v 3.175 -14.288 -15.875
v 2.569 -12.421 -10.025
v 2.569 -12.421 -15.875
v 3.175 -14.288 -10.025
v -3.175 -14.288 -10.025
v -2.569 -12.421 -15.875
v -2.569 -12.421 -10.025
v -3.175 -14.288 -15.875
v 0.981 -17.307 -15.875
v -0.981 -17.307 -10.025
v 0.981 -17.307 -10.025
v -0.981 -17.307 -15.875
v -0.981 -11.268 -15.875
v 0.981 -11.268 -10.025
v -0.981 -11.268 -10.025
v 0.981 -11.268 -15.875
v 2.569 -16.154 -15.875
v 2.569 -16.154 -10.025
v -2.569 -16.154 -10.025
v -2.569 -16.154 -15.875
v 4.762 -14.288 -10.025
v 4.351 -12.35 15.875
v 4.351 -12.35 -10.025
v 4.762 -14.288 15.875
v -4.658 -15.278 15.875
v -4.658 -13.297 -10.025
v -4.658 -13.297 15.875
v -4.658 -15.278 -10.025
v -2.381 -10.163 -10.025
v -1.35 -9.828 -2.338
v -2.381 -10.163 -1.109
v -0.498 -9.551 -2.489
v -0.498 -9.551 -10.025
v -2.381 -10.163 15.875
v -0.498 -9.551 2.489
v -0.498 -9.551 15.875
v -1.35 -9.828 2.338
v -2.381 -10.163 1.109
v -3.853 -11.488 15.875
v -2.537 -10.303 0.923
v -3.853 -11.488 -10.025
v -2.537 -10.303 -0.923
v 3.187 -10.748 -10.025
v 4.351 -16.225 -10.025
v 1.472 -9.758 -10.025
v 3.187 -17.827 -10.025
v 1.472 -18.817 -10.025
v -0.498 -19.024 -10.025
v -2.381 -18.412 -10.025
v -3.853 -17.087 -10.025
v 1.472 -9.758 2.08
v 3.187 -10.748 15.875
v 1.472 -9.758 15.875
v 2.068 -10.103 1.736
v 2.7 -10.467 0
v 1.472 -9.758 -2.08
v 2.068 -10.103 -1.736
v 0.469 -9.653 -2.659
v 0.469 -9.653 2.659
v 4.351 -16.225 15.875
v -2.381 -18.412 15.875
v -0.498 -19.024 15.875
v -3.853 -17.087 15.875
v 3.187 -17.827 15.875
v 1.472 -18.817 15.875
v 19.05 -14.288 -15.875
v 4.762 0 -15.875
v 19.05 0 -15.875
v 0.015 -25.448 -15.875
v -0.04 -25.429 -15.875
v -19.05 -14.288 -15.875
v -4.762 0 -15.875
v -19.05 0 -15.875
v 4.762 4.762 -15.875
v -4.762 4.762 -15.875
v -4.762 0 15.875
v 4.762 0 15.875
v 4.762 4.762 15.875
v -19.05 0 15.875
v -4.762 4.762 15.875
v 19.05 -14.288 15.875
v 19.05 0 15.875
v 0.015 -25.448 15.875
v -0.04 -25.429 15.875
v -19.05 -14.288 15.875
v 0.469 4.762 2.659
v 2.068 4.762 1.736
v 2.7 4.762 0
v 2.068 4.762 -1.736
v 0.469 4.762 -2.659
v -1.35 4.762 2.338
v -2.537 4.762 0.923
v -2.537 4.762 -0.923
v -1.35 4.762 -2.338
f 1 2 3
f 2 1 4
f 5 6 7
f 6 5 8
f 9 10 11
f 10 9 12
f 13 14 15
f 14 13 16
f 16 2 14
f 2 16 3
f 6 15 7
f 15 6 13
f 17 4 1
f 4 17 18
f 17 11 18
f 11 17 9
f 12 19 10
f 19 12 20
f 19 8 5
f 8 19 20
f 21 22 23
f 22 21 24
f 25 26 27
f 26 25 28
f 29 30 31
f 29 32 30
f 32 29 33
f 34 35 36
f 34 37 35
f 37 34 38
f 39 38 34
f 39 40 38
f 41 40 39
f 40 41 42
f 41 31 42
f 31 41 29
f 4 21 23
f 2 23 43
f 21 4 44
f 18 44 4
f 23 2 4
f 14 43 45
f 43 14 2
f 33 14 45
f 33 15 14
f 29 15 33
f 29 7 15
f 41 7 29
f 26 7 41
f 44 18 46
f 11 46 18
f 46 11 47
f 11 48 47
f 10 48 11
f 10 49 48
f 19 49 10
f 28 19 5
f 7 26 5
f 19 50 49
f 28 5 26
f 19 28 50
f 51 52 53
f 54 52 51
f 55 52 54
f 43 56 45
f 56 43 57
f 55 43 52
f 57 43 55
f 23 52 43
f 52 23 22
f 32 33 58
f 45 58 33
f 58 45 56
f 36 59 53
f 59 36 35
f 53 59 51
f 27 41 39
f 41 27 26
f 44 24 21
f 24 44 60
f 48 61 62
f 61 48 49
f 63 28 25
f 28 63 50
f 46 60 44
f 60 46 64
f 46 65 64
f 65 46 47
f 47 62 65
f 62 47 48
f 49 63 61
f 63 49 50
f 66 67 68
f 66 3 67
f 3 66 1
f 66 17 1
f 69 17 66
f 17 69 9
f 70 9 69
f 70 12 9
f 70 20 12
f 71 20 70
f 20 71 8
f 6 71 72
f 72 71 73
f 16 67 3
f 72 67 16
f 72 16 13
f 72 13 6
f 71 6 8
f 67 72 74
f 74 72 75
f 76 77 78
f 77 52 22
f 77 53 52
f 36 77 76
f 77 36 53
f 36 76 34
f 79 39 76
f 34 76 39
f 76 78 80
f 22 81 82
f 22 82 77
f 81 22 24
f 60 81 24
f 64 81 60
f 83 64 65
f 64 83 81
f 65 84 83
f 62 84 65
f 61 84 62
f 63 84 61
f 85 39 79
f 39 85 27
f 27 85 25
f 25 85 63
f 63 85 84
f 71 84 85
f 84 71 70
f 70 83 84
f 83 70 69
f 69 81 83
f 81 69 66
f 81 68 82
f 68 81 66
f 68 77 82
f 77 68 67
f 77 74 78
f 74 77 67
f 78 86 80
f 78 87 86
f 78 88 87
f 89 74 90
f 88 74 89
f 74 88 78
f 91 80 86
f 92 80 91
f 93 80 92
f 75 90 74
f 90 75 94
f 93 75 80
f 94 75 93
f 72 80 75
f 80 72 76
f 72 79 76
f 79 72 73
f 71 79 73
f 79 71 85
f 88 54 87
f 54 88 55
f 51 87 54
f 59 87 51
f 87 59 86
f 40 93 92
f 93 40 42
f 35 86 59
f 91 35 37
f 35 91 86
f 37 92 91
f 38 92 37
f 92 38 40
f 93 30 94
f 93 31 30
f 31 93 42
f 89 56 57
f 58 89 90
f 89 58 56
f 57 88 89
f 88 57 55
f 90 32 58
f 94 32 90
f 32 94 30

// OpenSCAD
inch=25.4;

module index_pin_guide(insertWidth=0.375*inch,
		       insertHeight=3/16*inch,

		       bodyWidth=(1+1/2)*inch,
		       bodyHeight=9/16*inch,

		       totalHeight=(1+3/16)*inch,

		       thickness=(1+1/4)*inch,
		       bolt=5.4,
		       pinHole=[1/4*inch, 3/8*inch, inch]
		       
     ) {
     difference() {
	  linear_extrude(height=thickness,center=true) union() {
	       translate([0,insertHeight/2])
		    square([insertWidth, insertHeight], center=true);
	       hull() {
		    translate([0,-bodyHeight/2])
			 square([bodyWidth, bodyHeight], center=true);
		    translate([0,insertHeight-totalHeight])
			 circle(d=0.1);
	       }
	  }

	 // Bolt
	 rotate([90,0,0]) cylinder(d=bolt, h=bodyHeight*2, center=true);

	 // Hole for indexing pin...
	 translate([0,-bodyHeight,0]) {
	      cylinder(d=pinHole[0], h=thickness*2, center=true);
	       translate([0,0,-pinHole[2]/2+thickness/2]) {
		    cylinder(d=pinHole[1], h=pinHole[2]+1, center=true);
	       }
	 }
     }
}

index_pin_guide();
